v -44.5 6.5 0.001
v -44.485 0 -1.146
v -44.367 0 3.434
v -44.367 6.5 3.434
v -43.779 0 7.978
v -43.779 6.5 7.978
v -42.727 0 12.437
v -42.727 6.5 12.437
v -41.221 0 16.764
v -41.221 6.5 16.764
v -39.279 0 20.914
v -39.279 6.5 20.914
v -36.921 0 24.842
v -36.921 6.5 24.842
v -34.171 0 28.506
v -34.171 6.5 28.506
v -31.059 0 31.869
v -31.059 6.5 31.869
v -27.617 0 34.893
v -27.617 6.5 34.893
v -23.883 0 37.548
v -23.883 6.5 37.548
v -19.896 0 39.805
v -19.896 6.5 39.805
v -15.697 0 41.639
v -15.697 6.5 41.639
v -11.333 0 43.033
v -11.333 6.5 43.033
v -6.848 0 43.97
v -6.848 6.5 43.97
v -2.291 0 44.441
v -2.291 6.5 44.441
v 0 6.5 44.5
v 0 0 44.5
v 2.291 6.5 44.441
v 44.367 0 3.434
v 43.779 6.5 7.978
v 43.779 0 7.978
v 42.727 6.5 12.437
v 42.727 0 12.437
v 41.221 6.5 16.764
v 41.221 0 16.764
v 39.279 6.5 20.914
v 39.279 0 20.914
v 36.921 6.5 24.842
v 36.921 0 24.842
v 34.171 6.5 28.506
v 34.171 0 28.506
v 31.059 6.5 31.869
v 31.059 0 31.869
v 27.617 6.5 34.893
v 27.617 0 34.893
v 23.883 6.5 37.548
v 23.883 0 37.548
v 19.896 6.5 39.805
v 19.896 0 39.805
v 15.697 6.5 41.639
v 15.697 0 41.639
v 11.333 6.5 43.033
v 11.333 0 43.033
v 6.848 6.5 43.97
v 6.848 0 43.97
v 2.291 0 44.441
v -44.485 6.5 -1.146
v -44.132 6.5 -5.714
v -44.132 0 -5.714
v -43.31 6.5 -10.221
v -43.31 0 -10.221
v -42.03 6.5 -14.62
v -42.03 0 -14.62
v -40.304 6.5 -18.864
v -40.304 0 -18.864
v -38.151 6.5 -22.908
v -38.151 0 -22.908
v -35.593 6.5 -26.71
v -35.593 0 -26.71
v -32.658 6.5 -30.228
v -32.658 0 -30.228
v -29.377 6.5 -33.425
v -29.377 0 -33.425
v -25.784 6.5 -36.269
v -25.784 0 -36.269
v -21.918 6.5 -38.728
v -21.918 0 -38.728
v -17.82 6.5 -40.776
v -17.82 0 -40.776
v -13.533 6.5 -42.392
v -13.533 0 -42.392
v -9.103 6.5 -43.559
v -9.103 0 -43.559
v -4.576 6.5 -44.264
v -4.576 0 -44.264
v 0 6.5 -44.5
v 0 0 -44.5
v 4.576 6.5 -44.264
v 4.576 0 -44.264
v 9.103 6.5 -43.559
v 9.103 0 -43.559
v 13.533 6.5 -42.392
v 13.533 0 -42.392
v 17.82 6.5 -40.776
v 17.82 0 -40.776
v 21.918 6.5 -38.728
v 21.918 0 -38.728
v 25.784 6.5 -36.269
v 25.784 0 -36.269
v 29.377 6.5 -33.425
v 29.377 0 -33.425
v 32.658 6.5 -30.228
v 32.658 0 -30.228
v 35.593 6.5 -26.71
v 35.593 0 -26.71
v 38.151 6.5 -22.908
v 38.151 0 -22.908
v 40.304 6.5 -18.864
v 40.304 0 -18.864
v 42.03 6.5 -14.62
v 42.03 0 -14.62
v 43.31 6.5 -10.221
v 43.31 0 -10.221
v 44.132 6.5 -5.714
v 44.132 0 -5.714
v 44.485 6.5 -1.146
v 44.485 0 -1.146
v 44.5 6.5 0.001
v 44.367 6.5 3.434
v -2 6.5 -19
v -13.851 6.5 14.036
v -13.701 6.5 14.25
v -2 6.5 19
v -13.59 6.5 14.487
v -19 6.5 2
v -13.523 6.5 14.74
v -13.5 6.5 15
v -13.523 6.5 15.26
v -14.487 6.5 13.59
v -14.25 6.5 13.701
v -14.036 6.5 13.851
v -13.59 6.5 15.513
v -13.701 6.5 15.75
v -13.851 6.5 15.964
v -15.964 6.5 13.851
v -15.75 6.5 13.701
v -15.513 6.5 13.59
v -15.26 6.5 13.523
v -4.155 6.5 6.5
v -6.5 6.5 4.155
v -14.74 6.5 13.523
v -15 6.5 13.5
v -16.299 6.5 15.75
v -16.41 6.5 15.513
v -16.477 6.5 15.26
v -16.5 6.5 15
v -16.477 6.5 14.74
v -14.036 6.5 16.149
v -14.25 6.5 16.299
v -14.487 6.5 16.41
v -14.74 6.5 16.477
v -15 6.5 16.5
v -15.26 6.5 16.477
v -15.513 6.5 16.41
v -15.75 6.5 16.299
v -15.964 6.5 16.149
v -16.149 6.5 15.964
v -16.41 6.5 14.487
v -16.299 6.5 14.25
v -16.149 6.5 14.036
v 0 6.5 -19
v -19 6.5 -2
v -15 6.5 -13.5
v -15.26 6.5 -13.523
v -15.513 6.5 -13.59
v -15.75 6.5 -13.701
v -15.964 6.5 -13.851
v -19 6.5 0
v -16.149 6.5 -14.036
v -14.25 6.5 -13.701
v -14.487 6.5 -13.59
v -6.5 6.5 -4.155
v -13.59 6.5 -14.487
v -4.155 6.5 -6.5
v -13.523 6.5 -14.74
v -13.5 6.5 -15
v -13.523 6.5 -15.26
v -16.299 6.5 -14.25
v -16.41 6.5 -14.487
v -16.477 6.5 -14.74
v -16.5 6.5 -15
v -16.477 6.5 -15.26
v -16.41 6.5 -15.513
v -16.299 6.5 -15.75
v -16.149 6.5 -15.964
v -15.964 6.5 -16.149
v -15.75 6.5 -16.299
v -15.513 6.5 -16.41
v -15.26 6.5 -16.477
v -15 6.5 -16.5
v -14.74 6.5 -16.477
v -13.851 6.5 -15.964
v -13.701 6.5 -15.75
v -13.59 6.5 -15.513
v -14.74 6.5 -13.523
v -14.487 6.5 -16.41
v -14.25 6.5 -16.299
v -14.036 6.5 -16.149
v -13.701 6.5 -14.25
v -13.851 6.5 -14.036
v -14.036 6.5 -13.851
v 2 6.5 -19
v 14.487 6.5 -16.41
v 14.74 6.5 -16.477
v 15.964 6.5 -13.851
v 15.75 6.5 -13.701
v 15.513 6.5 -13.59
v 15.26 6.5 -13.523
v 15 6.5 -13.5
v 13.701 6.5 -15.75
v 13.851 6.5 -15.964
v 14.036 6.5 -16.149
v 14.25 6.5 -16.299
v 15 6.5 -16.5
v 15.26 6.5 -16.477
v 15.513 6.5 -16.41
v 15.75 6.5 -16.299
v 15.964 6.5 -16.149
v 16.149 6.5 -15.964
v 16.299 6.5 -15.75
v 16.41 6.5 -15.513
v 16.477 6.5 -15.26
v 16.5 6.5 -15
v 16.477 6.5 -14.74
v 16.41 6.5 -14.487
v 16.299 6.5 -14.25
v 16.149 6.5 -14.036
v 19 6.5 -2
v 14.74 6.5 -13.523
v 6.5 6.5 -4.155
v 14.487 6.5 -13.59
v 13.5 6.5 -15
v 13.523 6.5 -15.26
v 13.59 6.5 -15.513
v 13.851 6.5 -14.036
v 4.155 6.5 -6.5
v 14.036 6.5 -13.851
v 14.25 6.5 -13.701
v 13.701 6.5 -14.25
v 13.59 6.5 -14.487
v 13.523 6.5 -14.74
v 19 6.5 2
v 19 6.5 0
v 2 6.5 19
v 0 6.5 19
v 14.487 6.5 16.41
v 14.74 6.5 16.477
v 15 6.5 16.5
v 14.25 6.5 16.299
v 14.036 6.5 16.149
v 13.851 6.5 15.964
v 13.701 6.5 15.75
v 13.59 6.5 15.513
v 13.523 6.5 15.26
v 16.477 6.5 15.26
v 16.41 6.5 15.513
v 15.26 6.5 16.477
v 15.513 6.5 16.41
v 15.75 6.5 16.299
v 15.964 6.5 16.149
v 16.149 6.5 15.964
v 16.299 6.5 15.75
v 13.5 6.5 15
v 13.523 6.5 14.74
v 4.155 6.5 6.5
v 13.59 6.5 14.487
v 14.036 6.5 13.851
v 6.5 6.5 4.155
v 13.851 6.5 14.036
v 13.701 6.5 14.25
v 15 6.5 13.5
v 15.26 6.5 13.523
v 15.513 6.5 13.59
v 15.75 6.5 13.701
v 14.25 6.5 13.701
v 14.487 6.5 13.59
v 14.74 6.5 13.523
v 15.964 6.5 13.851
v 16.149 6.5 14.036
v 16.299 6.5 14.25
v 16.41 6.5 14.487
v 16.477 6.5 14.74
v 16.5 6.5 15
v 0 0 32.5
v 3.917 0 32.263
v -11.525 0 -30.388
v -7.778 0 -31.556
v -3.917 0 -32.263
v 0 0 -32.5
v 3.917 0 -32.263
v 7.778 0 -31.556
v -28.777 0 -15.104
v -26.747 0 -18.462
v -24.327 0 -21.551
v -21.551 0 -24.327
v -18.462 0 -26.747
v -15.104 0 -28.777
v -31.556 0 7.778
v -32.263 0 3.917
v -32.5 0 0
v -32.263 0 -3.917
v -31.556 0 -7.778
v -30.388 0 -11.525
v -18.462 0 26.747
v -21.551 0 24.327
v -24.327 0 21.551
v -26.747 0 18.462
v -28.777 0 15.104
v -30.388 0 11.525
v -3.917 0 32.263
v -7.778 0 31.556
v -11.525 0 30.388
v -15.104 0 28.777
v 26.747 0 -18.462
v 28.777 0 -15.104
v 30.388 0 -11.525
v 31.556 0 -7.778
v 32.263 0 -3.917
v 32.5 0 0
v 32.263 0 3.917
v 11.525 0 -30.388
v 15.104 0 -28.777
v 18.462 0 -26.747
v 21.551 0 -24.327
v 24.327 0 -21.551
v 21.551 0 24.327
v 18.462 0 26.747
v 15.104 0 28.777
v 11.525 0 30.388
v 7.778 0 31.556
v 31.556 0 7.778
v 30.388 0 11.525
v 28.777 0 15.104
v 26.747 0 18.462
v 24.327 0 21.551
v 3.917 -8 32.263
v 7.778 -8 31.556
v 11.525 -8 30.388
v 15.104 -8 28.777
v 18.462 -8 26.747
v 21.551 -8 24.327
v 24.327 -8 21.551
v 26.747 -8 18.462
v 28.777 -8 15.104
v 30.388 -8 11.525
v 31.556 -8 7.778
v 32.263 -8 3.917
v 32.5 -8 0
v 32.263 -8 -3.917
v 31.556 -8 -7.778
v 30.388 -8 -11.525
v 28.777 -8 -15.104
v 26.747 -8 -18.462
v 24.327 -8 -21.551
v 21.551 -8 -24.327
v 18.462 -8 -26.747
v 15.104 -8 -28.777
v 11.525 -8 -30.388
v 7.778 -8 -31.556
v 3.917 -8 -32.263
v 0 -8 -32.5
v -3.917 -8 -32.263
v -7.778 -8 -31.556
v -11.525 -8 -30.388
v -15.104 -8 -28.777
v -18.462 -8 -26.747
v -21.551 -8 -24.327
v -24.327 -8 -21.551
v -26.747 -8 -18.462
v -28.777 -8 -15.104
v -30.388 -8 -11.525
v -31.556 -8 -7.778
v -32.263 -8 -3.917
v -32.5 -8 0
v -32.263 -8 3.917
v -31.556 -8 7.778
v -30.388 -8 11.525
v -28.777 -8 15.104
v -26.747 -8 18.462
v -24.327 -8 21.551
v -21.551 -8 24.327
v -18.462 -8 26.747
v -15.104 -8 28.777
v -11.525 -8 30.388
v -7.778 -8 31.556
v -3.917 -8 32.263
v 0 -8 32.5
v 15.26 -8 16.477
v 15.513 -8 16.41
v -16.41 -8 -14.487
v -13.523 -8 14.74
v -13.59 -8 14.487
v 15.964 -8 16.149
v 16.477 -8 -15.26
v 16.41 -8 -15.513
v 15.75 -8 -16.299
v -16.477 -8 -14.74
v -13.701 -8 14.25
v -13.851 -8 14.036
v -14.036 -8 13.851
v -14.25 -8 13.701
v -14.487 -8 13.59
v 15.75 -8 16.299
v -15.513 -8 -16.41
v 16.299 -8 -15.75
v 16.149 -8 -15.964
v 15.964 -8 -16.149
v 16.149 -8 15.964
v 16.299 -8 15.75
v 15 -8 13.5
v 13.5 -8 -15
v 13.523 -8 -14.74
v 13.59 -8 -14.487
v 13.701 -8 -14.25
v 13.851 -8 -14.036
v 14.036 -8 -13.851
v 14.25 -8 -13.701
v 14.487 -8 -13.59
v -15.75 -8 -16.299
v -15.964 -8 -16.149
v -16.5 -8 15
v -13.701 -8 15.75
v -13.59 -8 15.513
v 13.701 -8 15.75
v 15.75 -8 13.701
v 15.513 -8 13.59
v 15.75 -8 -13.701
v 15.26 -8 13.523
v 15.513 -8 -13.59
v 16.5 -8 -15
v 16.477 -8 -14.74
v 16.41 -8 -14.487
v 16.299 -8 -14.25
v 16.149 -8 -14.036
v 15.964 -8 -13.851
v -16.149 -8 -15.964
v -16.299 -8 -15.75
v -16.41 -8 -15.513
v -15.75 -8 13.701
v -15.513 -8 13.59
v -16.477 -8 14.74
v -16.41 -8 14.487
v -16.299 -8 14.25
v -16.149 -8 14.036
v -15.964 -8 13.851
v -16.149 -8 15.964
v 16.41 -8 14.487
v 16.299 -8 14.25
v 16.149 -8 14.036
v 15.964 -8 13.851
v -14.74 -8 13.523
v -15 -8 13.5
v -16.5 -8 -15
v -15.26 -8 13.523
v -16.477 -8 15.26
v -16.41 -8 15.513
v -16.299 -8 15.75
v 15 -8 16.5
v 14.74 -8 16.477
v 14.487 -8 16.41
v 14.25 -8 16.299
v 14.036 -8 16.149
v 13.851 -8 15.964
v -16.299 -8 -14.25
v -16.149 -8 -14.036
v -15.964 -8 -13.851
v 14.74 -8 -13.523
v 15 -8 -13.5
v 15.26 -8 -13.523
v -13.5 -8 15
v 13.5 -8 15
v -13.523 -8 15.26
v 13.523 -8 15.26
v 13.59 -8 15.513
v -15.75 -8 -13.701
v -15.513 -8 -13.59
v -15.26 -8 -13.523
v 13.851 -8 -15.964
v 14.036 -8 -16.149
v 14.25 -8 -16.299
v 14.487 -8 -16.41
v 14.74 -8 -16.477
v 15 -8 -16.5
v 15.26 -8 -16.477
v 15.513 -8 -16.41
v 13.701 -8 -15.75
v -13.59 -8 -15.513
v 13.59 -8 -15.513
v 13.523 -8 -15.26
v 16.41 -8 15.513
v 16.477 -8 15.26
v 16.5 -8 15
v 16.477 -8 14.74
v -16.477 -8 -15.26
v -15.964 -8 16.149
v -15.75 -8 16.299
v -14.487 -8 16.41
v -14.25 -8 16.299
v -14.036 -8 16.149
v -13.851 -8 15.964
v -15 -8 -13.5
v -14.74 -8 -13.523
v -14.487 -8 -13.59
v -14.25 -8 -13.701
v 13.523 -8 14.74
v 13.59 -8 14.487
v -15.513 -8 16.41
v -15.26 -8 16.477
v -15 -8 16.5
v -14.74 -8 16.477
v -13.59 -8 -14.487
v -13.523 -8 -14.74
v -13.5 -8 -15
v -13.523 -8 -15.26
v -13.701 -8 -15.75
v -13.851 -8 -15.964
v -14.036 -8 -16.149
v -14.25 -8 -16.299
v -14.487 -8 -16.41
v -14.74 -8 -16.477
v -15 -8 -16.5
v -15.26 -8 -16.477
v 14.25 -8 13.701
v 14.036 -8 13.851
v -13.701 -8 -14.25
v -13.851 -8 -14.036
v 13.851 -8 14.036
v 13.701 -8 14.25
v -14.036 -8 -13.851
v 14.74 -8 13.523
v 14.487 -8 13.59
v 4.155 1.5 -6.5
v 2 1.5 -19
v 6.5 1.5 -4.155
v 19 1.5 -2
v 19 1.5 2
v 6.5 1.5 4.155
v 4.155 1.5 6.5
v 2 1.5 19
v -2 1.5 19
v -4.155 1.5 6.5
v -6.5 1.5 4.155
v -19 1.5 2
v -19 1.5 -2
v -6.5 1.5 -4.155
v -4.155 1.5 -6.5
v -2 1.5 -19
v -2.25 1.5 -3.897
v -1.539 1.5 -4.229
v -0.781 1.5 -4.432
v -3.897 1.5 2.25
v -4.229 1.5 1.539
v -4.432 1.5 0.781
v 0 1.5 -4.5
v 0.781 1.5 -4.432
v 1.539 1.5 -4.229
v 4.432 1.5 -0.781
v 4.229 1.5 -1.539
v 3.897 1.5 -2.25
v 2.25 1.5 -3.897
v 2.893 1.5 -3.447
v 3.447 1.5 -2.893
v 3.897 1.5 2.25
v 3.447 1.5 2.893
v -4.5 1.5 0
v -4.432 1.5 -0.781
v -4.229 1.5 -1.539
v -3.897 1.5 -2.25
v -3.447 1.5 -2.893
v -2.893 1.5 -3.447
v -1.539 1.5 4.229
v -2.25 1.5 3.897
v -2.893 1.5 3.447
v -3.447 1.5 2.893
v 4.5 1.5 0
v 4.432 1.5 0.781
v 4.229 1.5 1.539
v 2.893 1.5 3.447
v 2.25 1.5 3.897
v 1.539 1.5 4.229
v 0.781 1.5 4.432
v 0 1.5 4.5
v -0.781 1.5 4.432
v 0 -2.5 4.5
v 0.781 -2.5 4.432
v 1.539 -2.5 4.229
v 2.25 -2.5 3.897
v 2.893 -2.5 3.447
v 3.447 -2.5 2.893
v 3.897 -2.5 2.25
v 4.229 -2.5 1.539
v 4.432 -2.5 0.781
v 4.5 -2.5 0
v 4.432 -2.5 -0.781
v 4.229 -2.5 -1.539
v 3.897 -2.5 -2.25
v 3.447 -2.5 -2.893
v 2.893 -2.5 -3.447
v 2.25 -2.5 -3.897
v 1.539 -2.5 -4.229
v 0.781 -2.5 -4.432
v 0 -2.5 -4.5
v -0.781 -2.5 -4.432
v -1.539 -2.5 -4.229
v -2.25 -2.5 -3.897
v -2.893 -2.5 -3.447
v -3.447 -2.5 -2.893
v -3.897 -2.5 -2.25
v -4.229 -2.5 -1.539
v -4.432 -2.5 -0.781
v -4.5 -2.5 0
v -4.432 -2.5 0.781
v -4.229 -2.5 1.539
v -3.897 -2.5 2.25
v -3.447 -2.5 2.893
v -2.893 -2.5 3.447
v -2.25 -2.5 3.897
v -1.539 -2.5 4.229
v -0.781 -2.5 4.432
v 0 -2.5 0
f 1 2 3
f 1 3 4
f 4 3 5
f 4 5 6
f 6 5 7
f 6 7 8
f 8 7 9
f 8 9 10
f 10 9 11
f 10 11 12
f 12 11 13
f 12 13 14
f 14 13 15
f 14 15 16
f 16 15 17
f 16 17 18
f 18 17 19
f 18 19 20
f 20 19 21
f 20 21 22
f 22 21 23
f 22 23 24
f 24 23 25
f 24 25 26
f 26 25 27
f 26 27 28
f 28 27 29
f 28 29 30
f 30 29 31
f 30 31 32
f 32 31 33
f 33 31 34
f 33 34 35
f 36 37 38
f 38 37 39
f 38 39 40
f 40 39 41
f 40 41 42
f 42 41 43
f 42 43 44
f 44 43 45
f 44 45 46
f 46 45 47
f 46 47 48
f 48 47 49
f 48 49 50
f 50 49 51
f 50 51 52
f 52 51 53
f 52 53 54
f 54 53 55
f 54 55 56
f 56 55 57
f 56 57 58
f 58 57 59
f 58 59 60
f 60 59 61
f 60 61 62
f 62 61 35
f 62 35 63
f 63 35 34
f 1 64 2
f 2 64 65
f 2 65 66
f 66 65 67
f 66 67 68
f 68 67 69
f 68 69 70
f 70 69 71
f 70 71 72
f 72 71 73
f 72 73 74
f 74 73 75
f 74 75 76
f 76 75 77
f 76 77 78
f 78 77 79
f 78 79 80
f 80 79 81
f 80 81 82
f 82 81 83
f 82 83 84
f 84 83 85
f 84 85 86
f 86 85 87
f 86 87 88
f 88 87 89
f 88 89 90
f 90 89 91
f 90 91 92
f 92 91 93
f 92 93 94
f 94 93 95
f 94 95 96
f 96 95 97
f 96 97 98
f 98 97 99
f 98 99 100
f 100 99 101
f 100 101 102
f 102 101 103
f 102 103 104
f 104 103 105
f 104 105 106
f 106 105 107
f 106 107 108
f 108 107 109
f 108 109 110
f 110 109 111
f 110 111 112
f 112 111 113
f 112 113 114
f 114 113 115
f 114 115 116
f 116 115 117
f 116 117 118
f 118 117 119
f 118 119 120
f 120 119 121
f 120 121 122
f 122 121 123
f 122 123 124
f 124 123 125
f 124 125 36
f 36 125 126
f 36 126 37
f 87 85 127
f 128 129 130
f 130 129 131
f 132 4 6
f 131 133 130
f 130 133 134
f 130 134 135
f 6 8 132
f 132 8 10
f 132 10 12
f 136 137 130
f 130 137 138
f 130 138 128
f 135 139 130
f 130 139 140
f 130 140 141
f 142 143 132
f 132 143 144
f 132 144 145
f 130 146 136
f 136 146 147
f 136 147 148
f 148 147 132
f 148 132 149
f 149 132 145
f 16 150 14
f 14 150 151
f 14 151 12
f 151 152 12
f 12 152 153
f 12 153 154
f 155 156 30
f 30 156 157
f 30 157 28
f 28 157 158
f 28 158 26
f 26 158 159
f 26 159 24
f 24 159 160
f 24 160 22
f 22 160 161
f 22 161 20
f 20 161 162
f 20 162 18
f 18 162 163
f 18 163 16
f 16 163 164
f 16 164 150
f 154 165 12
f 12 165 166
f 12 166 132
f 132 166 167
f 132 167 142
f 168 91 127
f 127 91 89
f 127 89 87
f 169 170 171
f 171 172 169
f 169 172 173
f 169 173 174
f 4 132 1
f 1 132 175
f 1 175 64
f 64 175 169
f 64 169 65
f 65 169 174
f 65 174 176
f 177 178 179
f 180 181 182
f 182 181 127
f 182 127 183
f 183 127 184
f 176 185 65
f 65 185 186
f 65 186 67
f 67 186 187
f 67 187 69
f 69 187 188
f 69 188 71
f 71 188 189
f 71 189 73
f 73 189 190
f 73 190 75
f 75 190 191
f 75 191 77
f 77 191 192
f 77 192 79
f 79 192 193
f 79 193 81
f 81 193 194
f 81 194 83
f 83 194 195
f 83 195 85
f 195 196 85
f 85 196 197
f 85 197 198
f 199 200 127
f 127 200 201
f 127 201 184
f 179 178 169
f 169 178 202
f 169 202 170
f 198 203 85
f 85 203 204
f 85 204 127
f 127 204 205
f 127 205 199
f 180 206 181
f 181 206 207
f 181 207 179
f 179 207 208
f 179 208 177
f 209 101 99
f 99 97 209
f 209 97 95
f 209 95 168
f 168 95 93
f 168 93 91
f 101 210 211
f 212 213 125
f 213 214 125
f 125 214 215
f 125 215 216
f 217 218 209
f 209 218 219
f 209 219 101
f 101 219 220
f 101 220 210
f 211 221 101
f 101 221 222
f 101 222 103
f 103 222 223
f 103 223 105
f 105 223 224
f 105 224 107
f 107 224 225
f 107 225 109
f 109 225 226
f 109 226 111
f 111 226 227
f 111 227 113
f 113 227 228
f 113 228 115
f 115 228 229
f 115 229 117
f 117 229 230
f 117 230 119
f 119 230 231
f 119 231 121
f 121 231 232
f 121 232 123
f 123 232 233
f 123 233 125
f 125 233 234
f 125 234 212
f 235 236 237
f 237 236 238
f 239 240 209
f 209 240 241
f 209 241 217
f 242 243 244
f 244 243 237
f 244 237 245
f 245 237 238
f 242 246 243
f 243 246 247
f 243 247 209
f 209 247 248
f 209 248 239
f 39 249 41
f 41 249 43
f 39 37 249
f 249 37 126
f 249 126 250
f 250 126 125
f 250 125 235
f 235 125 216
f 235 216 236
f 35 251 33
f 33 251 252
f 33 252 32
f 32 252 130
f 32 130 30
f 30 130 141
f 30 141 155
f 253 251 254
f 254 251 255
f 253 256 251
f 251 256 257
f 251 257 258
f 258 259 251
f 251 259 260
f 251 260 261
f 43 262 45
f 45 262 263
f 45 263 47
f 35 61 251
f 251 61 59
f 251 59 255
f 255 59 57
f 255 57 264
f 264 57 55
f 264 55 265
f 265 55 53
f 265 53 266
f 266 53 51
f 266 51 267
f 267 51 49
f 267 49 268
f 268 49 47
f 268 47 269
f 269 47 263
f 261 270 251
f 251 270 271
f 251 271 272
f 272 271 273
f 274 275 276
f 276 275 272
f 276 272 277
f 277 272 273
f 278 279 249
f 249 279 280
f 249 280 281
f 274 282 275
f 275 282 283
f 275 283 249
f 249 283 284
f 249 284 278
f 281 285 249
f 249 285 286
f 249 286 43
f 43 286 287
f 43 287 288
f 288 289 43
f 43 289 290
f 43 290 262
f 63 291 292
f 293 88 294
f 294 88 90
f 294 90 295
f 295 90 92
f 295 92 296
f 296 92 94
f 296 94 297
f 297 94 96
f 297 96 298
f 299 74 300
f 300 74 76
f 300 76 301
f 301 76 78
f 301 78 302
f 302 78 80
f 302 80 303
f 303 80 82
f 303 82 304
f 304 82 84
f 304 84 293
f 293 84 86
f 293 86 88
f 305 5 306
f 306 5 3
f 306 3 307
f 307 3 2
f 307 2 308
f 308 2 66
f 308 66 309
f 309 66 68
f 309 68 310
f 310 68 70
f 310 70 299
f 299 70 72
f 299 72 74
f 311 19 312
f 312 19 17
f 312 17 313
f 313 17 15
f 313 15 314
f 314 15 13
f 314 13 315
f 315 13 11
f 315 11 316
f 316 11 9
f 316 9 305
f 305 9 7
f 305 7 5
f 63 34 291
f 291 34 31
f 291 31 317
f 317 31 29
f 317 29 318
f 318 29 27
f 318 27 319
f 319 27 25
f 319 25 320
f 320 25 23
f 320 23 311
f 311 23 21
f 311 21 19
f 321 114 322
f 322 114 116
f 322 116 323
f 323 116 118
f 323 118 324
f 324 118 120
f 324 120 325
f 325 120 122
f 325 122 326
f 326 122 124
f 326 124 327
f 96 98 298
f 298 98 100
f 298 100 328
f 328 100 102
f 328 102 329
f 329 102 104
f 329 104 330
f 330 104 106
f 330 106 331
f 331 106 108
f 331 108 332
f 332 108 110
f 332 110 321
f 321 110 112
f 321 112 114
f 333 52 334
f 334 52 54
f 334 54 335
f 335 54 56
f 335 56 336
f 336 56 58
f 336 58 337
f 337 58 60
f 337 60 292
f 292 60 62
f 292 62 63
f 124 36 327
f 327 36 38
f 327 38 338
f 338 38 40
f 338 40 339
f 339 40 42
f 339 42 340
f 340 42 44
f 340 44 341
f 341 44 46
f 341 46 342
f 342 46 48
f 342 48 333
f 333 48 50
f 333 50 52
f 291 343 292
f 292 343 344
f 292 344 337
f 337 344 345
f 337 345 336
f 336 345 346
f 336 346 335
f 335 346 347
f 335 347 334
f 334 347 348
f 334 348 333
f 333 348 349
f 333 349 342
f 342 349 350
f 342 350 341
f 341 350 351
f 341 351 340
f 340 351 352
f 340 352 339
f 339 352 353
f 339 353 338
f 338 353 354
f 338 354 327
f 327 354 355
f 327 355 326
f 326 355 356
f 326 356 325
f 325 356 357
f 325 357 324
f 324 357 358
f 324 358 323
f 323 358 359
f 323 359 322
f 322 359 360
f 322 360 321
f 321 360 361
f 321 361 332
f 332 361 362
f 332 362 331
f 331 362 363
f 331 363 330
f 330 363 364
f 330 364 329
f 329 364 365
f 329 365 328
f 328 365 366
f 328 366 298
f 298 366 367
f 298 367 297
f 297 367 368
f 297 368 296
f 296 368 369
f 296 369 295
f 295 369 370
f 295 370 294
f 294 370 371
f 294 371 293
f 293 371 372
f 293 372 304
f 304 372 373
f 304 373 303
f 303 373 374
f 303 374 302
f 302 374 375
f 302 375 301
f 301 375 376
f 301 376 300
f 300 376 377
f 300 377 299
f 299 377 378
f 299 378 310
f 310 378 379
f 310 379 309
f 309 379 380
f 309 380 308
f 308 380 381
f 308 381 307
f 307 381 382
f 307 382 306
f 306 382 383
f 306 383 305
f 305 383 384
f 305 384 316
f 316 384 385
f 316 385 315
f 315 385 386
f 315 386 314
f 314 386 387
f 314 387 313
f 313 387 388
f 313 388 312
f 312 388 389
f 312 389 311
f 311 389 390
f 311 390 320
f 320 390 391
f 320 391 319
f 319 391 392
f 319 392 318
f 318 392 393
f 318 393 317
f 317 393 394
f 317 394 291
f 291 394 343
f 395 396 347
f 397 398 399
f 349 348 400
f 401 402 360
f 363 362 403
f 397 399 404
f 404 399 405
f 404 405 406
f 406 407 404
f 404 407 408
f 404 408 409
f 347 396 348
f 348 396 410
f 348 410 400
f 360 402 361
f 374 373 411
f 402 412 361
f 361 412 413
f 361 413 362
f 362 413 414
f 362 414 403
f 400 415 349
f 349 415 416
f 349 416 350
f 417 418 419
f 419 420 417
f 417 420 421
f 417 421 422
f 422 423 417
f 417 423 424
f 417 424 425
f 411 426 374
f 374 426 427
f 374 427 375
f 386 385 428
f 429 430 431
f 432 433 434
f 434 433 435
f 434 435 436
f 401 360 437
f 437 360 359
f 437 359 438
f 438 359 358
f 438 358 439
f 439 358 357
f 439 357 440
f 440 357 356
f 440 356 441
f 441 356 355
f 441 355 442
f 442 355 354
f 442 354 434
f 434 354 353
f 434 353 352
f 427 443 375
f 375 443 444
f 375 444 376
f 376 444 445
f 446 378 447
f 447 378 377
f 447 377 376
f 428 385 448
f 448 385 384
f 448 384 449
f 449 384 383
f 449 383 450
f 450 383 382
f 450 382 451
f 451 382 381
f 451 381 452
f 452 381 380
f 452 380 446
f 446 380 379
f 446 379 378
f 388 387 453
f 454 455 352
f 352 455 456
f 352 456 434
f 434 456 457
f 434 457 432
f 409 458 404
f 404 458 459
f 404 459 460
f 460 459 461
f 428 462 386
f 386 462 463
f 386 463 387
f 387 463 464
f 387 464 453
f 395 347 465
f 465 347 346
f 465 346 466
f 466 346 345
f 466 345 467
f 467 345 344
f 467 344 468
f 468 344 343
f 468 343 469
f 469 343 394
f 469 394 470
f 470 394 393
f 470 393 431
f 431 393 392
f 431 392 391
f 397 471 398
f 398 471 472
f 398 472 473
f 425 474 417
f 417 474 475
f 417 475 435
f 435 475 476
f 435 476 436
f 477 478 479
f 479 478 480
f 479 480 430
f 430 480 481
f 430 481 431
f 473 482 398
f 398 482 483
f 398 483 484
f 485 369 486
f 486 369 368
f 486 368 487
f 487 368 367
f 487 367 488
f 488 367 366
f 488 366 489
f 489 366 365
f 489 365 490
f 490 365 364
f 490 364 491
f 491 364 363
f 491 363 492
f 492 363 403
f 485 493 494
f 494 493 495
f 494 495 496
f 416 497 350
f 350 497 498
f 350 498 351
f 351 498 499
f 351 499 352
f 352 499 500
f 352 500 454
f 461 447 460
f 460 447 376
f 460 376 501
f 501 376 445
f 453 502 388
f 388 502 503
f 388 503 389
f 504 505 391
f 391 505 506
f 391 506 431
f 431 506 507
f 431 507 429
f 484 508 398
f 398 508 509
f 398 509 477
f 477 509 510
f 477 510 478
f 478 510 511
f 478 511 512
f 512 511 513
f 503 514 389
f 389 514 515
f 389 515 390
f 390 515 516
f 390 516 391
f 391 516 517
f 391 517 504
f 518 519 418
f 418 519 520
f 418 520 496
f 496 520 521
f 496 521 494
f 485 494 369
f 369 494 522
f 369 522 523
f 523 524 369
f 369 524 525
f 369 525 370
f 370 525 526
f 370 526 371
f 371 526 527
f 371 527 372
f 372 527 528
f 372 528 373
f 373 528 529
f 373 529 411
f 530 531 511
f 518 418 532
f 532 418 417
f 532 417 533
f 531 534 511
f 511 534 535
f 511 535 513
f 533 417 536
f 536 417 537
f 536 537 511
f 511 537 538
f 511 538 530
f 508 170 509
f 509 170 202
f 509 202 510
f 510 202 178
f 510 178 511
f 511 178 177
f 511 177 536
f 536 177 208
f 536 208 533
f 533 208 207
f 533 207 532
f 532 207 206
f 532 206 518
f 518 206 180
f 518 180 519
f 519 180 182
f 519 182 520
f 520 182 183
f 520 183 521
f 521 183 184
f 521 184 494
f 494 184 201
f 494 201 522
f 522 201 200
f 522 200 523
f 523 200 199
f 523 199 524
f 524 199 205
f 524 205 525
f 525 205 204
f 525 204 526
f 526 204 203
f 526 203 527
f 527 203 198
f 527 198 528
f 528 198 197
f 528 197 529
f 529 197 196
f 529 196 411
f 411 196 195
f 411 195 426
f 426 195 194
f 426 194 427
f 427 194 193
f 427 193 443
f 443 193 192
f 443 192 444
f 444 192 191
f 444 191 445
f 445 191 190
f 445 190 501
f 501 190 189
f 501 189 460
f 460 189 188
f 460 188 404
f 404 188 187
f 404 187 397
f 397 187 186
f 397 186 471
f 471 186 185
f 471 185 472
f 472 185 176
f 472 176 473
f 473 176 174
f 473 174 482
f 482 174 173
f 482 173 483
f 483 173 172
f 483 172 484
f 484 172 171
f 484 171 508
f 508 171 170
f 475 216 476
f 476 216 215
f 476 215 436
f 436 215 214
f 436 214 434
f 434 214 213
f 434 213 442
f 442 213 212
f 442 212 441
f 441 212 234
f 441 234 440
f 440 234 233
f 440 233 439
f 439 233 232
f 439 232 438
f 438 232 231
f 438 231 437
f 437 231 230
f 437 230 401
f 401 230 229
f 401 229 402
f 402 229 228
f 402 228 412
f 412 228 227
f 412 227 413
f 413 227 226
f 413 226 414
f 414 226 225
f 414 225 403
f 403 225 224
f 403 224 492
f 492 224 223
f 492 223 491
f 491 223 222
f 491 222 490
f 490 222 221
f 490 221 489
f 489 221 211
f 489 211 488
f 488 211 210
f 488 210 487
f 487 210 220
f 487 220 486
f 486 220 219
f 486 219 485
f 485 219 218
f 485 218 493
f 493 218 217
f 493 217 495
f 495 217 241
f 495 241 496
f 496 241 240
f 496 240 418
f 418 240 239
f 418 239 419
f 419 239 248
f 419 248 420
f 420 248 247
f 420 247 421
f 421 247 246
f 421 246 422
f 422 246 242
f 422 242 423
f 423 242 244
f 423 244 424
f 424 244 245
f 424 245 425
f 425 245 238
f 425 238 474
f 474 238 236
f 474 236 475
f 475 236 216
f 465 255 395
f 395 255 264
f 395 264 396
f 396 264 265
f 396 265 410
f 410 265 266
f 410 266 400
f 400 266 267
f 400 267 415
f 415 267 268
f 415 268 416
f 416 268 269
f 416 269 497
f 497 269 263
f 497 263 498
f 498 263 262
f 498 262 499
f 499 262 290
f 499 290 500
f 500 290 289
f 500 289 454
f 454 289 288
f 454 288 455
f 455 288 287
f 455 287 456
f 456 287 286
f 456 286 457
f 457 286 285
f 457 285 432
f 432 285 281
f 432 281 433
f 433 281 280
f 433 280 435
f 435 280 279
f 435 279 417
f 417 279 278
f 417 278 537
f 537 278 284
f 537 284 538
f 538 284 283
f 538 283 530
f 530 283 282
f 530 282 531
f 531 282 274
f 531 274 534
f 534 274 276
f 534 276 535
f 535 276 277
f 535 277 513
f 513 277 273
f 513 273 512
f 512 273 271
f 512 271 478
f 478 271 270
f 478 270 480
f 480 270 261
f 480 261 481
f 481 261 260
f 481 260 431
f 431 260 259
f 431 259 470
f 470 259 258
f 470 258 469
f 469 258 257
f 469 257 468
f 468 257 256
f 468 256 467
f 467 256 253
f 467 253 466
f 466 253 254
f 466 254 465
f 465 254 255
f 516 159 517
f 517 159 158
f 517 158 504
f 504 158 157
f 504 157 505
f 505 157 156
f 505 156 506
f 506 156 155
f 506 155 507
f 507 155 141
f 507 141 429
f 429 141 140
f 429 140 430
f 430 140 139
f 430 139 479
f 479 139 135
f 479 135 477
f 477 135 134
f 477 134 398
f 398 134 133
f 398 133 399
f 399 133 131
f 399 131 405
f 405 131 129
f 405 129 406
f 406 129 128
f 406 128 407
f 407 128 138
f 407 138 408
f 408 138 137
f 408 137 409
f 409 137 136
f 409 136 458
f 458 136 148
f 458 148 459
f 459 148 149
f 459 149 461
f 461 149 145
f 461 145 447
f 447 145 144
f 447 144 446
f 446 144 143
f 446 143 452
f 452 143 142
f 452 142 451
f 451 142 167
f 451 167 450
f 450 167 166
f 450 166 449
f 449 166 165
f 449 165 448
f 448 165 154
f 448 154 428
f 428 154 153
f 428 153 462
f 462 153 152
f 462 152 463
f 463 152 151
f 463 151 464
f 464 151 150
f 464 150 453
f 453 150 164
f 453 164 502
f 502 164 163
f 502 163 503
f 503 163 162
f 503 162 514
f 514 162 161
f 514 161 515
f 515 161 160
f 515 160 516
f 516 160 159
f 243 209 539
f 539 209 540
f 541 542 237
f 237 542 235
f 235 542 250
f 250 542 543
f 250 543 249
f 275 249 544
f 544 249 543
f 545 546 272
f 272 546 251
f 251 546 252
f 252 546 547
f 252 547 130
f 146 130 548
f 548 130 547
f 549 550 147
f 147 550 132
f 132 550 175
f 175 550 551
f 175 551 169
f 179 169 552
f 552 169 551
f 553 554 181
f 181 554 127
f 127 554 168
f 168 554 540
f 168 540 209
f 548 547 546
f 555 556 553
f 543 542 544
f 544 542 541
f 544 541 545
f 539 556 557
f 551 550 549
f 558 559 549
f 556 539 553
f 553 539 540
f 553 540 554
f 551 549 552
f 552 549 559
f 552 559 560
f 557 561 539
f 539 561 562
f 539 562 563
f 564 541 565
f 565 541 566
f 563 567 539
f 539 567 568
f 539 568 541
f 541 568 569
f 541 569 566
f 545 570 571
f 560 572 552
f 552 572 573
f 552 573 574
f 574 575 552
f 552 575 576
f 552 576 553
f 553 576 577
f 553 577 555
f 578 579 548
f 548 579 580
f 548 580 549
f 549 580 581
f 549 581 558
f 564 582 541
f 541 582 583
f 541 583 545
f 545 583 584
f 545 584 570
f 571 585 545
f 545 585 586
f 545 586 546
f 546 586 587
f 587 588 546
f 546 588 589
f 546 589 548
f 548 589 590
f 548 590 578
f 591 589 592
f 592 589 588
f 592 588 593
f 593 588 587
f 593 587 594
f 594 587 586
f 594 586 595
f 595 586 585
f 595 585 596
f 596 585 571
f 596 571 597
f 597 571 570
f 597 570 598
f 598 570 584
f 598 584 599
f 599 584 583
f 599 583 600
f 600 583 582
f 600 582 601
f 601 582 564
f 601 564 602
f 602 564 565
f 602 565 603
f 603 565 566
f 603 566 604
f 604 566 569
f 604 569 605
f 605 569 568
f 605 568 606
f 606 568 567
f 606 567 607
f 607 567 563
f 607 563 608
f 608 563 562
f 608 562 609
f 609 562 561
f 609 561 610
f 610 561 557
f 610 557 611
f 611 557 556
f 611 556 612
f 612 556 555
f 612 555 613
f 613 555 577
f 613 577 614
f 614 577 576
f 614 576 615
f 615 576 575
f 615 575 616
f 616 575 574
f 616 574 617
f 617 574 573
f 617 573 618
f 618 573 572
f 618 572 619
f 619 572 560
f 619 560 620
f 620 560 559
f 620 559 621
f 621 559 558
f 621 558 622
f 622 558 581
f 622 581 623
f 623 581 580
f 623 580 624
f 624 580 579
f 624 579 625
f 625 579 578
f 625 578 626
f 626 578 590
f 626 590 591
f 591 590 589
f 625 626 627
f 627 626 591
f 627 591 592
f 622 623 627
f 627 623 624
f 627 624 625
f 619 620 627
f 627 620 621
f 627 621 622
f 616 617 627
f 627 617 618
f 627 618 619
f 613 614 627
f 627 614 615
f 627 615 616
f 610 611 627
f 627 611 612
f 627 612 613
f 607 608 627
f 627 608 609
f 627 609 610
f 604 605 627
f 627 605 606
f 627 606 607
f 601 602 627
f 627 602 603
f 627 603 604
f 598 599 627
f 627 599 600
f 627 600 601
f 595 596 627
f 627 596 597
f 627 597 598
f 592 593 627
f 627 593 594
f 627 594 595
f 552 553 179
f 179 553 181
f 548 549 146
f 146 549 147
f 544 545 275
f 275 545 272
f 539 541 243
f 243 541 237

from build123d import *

# Parameters (mm, degrees)
SKETCH1_R           = 44.5
BOSS_EXTRUDE1_DEPTH = 6.5
SKETCH2_R           = 32.5
BOSS_EXTRUDE2_DEPTH = 8
SKETCH3_R           = 1.5
CUT_EXTRUDE1_DEPTH  = 30
CUT_EXTRUDE2_DEPTH  = 5
SKETCH5_R           = 4.5
CUT_EXTRUDE3_DEPTH  = 9
CUT_EXTRUDE4_DEPTH  = 5


with BuildPart() as part:
    # Sketch1 → Boss-Extrude1 (new body)
    with BuildSketch(Plane(origin=(0, 0, 0), x_dir=(1, 0, 0), z_dir=(0, 1, 0))):
        with Locations(Location((0, 0, 0), (0, 0, 90))):
            Circle(SKETCH1_R)
    extrude(amount=BOSS_EXTRUDE1_DEPTH)

    # Sketch2 → Boss-Extrude2 (add)
    with BuildSketch(Plane(origin=(0, 0, 0), x_dir=(1, 0, 0), z_dir=(0, 1, 0))):
        with Locations(Location((0, 0, 0), (0, 0, 270))):
            Circle(SKETCH2_R)
    extrude(amount=-BOSS_EXTRUDE2_DEPTH)

    # Sketch3 → Cut-Extrude1 (cut, symmetric)
    with BuildSketch(Plane(origin=(0, 0, 0), x_dir=(1, 0, 0), z_dir=(0, 1, 0))):
        with Locations(Location((-15, 15, 0), (0, 0, 270))):
            Circle(SKETCH3_R)
        with Locations(Location((15, 15, 0), (0, 0, 270))):
            Circle(SKETCH3_R)
        with Locations(Location((15, -15, 0), (0, 0, 270))):
            Circle(SKETCH3_R)
        with Locations(Location((-15, -15, 0), (0, 0, 270))):
            Circle(SKETCH3_R)
    extrude(amount=CUT_EXTRUDE1_DEPTH, both=True, mode=Mode.SUBTRACT)

    # Sketch4 → Cut-Extrude2 (cut)
    with BuildSketch(Plane(origin=(0, 6.5, 0), x_dir=(1, 0, 0), z_dir=(0, 1, 0))):
        Polygon((-2, 19), (2, 19), (4.5, 4.5), (19, 2), (19, -2), (4.5, -4.5), (2, -19), (-2, -19), (-4.5, -4.5), (-19, -2), (-19, 2), (-4.5, 4.5), align=None)
    extrude(amount=-CUT_EXTRUDE2_DEPTH, mode=Mode.SUBTRACT)

    # Sketch5 → Cut-Extrude3 (cut)
    with BuildSketch(Plane(origin=(0, 6.5, 0), x_dir=(1, 0, 0), z_dir=(0, 1, 0))):
        with Locations(Location((0, 0, 0), (0, 0, 270))):
            Circle(SKETCH5_R)
    extrude(amount=-CUT_EXTRUDE3_DEPTH, mode=Mode.SUBTRACT)

    # Sketch6 → Cut-Extrude4 (cut)
    with BuildSketch(Plane(origin=(0, 6.5, 0), x_dir=(1, 0, 0), z_dir=(0, 1, 0))):
        Polygon((-6.5, -4.155172414), (-6.5, 4.155172414), (-4.155172414, 6.5), (4.155172414, 6.5), (6.5, 4.155172414), (6.5, -4.155172414), (4.155172414, -6.5), (-4.155172414, -6.5), align=None)
    extrude(amount=-CUT_EXTRUDE4_DEPTH, mode=Mode.SUBTRACT)


solid = part.part
